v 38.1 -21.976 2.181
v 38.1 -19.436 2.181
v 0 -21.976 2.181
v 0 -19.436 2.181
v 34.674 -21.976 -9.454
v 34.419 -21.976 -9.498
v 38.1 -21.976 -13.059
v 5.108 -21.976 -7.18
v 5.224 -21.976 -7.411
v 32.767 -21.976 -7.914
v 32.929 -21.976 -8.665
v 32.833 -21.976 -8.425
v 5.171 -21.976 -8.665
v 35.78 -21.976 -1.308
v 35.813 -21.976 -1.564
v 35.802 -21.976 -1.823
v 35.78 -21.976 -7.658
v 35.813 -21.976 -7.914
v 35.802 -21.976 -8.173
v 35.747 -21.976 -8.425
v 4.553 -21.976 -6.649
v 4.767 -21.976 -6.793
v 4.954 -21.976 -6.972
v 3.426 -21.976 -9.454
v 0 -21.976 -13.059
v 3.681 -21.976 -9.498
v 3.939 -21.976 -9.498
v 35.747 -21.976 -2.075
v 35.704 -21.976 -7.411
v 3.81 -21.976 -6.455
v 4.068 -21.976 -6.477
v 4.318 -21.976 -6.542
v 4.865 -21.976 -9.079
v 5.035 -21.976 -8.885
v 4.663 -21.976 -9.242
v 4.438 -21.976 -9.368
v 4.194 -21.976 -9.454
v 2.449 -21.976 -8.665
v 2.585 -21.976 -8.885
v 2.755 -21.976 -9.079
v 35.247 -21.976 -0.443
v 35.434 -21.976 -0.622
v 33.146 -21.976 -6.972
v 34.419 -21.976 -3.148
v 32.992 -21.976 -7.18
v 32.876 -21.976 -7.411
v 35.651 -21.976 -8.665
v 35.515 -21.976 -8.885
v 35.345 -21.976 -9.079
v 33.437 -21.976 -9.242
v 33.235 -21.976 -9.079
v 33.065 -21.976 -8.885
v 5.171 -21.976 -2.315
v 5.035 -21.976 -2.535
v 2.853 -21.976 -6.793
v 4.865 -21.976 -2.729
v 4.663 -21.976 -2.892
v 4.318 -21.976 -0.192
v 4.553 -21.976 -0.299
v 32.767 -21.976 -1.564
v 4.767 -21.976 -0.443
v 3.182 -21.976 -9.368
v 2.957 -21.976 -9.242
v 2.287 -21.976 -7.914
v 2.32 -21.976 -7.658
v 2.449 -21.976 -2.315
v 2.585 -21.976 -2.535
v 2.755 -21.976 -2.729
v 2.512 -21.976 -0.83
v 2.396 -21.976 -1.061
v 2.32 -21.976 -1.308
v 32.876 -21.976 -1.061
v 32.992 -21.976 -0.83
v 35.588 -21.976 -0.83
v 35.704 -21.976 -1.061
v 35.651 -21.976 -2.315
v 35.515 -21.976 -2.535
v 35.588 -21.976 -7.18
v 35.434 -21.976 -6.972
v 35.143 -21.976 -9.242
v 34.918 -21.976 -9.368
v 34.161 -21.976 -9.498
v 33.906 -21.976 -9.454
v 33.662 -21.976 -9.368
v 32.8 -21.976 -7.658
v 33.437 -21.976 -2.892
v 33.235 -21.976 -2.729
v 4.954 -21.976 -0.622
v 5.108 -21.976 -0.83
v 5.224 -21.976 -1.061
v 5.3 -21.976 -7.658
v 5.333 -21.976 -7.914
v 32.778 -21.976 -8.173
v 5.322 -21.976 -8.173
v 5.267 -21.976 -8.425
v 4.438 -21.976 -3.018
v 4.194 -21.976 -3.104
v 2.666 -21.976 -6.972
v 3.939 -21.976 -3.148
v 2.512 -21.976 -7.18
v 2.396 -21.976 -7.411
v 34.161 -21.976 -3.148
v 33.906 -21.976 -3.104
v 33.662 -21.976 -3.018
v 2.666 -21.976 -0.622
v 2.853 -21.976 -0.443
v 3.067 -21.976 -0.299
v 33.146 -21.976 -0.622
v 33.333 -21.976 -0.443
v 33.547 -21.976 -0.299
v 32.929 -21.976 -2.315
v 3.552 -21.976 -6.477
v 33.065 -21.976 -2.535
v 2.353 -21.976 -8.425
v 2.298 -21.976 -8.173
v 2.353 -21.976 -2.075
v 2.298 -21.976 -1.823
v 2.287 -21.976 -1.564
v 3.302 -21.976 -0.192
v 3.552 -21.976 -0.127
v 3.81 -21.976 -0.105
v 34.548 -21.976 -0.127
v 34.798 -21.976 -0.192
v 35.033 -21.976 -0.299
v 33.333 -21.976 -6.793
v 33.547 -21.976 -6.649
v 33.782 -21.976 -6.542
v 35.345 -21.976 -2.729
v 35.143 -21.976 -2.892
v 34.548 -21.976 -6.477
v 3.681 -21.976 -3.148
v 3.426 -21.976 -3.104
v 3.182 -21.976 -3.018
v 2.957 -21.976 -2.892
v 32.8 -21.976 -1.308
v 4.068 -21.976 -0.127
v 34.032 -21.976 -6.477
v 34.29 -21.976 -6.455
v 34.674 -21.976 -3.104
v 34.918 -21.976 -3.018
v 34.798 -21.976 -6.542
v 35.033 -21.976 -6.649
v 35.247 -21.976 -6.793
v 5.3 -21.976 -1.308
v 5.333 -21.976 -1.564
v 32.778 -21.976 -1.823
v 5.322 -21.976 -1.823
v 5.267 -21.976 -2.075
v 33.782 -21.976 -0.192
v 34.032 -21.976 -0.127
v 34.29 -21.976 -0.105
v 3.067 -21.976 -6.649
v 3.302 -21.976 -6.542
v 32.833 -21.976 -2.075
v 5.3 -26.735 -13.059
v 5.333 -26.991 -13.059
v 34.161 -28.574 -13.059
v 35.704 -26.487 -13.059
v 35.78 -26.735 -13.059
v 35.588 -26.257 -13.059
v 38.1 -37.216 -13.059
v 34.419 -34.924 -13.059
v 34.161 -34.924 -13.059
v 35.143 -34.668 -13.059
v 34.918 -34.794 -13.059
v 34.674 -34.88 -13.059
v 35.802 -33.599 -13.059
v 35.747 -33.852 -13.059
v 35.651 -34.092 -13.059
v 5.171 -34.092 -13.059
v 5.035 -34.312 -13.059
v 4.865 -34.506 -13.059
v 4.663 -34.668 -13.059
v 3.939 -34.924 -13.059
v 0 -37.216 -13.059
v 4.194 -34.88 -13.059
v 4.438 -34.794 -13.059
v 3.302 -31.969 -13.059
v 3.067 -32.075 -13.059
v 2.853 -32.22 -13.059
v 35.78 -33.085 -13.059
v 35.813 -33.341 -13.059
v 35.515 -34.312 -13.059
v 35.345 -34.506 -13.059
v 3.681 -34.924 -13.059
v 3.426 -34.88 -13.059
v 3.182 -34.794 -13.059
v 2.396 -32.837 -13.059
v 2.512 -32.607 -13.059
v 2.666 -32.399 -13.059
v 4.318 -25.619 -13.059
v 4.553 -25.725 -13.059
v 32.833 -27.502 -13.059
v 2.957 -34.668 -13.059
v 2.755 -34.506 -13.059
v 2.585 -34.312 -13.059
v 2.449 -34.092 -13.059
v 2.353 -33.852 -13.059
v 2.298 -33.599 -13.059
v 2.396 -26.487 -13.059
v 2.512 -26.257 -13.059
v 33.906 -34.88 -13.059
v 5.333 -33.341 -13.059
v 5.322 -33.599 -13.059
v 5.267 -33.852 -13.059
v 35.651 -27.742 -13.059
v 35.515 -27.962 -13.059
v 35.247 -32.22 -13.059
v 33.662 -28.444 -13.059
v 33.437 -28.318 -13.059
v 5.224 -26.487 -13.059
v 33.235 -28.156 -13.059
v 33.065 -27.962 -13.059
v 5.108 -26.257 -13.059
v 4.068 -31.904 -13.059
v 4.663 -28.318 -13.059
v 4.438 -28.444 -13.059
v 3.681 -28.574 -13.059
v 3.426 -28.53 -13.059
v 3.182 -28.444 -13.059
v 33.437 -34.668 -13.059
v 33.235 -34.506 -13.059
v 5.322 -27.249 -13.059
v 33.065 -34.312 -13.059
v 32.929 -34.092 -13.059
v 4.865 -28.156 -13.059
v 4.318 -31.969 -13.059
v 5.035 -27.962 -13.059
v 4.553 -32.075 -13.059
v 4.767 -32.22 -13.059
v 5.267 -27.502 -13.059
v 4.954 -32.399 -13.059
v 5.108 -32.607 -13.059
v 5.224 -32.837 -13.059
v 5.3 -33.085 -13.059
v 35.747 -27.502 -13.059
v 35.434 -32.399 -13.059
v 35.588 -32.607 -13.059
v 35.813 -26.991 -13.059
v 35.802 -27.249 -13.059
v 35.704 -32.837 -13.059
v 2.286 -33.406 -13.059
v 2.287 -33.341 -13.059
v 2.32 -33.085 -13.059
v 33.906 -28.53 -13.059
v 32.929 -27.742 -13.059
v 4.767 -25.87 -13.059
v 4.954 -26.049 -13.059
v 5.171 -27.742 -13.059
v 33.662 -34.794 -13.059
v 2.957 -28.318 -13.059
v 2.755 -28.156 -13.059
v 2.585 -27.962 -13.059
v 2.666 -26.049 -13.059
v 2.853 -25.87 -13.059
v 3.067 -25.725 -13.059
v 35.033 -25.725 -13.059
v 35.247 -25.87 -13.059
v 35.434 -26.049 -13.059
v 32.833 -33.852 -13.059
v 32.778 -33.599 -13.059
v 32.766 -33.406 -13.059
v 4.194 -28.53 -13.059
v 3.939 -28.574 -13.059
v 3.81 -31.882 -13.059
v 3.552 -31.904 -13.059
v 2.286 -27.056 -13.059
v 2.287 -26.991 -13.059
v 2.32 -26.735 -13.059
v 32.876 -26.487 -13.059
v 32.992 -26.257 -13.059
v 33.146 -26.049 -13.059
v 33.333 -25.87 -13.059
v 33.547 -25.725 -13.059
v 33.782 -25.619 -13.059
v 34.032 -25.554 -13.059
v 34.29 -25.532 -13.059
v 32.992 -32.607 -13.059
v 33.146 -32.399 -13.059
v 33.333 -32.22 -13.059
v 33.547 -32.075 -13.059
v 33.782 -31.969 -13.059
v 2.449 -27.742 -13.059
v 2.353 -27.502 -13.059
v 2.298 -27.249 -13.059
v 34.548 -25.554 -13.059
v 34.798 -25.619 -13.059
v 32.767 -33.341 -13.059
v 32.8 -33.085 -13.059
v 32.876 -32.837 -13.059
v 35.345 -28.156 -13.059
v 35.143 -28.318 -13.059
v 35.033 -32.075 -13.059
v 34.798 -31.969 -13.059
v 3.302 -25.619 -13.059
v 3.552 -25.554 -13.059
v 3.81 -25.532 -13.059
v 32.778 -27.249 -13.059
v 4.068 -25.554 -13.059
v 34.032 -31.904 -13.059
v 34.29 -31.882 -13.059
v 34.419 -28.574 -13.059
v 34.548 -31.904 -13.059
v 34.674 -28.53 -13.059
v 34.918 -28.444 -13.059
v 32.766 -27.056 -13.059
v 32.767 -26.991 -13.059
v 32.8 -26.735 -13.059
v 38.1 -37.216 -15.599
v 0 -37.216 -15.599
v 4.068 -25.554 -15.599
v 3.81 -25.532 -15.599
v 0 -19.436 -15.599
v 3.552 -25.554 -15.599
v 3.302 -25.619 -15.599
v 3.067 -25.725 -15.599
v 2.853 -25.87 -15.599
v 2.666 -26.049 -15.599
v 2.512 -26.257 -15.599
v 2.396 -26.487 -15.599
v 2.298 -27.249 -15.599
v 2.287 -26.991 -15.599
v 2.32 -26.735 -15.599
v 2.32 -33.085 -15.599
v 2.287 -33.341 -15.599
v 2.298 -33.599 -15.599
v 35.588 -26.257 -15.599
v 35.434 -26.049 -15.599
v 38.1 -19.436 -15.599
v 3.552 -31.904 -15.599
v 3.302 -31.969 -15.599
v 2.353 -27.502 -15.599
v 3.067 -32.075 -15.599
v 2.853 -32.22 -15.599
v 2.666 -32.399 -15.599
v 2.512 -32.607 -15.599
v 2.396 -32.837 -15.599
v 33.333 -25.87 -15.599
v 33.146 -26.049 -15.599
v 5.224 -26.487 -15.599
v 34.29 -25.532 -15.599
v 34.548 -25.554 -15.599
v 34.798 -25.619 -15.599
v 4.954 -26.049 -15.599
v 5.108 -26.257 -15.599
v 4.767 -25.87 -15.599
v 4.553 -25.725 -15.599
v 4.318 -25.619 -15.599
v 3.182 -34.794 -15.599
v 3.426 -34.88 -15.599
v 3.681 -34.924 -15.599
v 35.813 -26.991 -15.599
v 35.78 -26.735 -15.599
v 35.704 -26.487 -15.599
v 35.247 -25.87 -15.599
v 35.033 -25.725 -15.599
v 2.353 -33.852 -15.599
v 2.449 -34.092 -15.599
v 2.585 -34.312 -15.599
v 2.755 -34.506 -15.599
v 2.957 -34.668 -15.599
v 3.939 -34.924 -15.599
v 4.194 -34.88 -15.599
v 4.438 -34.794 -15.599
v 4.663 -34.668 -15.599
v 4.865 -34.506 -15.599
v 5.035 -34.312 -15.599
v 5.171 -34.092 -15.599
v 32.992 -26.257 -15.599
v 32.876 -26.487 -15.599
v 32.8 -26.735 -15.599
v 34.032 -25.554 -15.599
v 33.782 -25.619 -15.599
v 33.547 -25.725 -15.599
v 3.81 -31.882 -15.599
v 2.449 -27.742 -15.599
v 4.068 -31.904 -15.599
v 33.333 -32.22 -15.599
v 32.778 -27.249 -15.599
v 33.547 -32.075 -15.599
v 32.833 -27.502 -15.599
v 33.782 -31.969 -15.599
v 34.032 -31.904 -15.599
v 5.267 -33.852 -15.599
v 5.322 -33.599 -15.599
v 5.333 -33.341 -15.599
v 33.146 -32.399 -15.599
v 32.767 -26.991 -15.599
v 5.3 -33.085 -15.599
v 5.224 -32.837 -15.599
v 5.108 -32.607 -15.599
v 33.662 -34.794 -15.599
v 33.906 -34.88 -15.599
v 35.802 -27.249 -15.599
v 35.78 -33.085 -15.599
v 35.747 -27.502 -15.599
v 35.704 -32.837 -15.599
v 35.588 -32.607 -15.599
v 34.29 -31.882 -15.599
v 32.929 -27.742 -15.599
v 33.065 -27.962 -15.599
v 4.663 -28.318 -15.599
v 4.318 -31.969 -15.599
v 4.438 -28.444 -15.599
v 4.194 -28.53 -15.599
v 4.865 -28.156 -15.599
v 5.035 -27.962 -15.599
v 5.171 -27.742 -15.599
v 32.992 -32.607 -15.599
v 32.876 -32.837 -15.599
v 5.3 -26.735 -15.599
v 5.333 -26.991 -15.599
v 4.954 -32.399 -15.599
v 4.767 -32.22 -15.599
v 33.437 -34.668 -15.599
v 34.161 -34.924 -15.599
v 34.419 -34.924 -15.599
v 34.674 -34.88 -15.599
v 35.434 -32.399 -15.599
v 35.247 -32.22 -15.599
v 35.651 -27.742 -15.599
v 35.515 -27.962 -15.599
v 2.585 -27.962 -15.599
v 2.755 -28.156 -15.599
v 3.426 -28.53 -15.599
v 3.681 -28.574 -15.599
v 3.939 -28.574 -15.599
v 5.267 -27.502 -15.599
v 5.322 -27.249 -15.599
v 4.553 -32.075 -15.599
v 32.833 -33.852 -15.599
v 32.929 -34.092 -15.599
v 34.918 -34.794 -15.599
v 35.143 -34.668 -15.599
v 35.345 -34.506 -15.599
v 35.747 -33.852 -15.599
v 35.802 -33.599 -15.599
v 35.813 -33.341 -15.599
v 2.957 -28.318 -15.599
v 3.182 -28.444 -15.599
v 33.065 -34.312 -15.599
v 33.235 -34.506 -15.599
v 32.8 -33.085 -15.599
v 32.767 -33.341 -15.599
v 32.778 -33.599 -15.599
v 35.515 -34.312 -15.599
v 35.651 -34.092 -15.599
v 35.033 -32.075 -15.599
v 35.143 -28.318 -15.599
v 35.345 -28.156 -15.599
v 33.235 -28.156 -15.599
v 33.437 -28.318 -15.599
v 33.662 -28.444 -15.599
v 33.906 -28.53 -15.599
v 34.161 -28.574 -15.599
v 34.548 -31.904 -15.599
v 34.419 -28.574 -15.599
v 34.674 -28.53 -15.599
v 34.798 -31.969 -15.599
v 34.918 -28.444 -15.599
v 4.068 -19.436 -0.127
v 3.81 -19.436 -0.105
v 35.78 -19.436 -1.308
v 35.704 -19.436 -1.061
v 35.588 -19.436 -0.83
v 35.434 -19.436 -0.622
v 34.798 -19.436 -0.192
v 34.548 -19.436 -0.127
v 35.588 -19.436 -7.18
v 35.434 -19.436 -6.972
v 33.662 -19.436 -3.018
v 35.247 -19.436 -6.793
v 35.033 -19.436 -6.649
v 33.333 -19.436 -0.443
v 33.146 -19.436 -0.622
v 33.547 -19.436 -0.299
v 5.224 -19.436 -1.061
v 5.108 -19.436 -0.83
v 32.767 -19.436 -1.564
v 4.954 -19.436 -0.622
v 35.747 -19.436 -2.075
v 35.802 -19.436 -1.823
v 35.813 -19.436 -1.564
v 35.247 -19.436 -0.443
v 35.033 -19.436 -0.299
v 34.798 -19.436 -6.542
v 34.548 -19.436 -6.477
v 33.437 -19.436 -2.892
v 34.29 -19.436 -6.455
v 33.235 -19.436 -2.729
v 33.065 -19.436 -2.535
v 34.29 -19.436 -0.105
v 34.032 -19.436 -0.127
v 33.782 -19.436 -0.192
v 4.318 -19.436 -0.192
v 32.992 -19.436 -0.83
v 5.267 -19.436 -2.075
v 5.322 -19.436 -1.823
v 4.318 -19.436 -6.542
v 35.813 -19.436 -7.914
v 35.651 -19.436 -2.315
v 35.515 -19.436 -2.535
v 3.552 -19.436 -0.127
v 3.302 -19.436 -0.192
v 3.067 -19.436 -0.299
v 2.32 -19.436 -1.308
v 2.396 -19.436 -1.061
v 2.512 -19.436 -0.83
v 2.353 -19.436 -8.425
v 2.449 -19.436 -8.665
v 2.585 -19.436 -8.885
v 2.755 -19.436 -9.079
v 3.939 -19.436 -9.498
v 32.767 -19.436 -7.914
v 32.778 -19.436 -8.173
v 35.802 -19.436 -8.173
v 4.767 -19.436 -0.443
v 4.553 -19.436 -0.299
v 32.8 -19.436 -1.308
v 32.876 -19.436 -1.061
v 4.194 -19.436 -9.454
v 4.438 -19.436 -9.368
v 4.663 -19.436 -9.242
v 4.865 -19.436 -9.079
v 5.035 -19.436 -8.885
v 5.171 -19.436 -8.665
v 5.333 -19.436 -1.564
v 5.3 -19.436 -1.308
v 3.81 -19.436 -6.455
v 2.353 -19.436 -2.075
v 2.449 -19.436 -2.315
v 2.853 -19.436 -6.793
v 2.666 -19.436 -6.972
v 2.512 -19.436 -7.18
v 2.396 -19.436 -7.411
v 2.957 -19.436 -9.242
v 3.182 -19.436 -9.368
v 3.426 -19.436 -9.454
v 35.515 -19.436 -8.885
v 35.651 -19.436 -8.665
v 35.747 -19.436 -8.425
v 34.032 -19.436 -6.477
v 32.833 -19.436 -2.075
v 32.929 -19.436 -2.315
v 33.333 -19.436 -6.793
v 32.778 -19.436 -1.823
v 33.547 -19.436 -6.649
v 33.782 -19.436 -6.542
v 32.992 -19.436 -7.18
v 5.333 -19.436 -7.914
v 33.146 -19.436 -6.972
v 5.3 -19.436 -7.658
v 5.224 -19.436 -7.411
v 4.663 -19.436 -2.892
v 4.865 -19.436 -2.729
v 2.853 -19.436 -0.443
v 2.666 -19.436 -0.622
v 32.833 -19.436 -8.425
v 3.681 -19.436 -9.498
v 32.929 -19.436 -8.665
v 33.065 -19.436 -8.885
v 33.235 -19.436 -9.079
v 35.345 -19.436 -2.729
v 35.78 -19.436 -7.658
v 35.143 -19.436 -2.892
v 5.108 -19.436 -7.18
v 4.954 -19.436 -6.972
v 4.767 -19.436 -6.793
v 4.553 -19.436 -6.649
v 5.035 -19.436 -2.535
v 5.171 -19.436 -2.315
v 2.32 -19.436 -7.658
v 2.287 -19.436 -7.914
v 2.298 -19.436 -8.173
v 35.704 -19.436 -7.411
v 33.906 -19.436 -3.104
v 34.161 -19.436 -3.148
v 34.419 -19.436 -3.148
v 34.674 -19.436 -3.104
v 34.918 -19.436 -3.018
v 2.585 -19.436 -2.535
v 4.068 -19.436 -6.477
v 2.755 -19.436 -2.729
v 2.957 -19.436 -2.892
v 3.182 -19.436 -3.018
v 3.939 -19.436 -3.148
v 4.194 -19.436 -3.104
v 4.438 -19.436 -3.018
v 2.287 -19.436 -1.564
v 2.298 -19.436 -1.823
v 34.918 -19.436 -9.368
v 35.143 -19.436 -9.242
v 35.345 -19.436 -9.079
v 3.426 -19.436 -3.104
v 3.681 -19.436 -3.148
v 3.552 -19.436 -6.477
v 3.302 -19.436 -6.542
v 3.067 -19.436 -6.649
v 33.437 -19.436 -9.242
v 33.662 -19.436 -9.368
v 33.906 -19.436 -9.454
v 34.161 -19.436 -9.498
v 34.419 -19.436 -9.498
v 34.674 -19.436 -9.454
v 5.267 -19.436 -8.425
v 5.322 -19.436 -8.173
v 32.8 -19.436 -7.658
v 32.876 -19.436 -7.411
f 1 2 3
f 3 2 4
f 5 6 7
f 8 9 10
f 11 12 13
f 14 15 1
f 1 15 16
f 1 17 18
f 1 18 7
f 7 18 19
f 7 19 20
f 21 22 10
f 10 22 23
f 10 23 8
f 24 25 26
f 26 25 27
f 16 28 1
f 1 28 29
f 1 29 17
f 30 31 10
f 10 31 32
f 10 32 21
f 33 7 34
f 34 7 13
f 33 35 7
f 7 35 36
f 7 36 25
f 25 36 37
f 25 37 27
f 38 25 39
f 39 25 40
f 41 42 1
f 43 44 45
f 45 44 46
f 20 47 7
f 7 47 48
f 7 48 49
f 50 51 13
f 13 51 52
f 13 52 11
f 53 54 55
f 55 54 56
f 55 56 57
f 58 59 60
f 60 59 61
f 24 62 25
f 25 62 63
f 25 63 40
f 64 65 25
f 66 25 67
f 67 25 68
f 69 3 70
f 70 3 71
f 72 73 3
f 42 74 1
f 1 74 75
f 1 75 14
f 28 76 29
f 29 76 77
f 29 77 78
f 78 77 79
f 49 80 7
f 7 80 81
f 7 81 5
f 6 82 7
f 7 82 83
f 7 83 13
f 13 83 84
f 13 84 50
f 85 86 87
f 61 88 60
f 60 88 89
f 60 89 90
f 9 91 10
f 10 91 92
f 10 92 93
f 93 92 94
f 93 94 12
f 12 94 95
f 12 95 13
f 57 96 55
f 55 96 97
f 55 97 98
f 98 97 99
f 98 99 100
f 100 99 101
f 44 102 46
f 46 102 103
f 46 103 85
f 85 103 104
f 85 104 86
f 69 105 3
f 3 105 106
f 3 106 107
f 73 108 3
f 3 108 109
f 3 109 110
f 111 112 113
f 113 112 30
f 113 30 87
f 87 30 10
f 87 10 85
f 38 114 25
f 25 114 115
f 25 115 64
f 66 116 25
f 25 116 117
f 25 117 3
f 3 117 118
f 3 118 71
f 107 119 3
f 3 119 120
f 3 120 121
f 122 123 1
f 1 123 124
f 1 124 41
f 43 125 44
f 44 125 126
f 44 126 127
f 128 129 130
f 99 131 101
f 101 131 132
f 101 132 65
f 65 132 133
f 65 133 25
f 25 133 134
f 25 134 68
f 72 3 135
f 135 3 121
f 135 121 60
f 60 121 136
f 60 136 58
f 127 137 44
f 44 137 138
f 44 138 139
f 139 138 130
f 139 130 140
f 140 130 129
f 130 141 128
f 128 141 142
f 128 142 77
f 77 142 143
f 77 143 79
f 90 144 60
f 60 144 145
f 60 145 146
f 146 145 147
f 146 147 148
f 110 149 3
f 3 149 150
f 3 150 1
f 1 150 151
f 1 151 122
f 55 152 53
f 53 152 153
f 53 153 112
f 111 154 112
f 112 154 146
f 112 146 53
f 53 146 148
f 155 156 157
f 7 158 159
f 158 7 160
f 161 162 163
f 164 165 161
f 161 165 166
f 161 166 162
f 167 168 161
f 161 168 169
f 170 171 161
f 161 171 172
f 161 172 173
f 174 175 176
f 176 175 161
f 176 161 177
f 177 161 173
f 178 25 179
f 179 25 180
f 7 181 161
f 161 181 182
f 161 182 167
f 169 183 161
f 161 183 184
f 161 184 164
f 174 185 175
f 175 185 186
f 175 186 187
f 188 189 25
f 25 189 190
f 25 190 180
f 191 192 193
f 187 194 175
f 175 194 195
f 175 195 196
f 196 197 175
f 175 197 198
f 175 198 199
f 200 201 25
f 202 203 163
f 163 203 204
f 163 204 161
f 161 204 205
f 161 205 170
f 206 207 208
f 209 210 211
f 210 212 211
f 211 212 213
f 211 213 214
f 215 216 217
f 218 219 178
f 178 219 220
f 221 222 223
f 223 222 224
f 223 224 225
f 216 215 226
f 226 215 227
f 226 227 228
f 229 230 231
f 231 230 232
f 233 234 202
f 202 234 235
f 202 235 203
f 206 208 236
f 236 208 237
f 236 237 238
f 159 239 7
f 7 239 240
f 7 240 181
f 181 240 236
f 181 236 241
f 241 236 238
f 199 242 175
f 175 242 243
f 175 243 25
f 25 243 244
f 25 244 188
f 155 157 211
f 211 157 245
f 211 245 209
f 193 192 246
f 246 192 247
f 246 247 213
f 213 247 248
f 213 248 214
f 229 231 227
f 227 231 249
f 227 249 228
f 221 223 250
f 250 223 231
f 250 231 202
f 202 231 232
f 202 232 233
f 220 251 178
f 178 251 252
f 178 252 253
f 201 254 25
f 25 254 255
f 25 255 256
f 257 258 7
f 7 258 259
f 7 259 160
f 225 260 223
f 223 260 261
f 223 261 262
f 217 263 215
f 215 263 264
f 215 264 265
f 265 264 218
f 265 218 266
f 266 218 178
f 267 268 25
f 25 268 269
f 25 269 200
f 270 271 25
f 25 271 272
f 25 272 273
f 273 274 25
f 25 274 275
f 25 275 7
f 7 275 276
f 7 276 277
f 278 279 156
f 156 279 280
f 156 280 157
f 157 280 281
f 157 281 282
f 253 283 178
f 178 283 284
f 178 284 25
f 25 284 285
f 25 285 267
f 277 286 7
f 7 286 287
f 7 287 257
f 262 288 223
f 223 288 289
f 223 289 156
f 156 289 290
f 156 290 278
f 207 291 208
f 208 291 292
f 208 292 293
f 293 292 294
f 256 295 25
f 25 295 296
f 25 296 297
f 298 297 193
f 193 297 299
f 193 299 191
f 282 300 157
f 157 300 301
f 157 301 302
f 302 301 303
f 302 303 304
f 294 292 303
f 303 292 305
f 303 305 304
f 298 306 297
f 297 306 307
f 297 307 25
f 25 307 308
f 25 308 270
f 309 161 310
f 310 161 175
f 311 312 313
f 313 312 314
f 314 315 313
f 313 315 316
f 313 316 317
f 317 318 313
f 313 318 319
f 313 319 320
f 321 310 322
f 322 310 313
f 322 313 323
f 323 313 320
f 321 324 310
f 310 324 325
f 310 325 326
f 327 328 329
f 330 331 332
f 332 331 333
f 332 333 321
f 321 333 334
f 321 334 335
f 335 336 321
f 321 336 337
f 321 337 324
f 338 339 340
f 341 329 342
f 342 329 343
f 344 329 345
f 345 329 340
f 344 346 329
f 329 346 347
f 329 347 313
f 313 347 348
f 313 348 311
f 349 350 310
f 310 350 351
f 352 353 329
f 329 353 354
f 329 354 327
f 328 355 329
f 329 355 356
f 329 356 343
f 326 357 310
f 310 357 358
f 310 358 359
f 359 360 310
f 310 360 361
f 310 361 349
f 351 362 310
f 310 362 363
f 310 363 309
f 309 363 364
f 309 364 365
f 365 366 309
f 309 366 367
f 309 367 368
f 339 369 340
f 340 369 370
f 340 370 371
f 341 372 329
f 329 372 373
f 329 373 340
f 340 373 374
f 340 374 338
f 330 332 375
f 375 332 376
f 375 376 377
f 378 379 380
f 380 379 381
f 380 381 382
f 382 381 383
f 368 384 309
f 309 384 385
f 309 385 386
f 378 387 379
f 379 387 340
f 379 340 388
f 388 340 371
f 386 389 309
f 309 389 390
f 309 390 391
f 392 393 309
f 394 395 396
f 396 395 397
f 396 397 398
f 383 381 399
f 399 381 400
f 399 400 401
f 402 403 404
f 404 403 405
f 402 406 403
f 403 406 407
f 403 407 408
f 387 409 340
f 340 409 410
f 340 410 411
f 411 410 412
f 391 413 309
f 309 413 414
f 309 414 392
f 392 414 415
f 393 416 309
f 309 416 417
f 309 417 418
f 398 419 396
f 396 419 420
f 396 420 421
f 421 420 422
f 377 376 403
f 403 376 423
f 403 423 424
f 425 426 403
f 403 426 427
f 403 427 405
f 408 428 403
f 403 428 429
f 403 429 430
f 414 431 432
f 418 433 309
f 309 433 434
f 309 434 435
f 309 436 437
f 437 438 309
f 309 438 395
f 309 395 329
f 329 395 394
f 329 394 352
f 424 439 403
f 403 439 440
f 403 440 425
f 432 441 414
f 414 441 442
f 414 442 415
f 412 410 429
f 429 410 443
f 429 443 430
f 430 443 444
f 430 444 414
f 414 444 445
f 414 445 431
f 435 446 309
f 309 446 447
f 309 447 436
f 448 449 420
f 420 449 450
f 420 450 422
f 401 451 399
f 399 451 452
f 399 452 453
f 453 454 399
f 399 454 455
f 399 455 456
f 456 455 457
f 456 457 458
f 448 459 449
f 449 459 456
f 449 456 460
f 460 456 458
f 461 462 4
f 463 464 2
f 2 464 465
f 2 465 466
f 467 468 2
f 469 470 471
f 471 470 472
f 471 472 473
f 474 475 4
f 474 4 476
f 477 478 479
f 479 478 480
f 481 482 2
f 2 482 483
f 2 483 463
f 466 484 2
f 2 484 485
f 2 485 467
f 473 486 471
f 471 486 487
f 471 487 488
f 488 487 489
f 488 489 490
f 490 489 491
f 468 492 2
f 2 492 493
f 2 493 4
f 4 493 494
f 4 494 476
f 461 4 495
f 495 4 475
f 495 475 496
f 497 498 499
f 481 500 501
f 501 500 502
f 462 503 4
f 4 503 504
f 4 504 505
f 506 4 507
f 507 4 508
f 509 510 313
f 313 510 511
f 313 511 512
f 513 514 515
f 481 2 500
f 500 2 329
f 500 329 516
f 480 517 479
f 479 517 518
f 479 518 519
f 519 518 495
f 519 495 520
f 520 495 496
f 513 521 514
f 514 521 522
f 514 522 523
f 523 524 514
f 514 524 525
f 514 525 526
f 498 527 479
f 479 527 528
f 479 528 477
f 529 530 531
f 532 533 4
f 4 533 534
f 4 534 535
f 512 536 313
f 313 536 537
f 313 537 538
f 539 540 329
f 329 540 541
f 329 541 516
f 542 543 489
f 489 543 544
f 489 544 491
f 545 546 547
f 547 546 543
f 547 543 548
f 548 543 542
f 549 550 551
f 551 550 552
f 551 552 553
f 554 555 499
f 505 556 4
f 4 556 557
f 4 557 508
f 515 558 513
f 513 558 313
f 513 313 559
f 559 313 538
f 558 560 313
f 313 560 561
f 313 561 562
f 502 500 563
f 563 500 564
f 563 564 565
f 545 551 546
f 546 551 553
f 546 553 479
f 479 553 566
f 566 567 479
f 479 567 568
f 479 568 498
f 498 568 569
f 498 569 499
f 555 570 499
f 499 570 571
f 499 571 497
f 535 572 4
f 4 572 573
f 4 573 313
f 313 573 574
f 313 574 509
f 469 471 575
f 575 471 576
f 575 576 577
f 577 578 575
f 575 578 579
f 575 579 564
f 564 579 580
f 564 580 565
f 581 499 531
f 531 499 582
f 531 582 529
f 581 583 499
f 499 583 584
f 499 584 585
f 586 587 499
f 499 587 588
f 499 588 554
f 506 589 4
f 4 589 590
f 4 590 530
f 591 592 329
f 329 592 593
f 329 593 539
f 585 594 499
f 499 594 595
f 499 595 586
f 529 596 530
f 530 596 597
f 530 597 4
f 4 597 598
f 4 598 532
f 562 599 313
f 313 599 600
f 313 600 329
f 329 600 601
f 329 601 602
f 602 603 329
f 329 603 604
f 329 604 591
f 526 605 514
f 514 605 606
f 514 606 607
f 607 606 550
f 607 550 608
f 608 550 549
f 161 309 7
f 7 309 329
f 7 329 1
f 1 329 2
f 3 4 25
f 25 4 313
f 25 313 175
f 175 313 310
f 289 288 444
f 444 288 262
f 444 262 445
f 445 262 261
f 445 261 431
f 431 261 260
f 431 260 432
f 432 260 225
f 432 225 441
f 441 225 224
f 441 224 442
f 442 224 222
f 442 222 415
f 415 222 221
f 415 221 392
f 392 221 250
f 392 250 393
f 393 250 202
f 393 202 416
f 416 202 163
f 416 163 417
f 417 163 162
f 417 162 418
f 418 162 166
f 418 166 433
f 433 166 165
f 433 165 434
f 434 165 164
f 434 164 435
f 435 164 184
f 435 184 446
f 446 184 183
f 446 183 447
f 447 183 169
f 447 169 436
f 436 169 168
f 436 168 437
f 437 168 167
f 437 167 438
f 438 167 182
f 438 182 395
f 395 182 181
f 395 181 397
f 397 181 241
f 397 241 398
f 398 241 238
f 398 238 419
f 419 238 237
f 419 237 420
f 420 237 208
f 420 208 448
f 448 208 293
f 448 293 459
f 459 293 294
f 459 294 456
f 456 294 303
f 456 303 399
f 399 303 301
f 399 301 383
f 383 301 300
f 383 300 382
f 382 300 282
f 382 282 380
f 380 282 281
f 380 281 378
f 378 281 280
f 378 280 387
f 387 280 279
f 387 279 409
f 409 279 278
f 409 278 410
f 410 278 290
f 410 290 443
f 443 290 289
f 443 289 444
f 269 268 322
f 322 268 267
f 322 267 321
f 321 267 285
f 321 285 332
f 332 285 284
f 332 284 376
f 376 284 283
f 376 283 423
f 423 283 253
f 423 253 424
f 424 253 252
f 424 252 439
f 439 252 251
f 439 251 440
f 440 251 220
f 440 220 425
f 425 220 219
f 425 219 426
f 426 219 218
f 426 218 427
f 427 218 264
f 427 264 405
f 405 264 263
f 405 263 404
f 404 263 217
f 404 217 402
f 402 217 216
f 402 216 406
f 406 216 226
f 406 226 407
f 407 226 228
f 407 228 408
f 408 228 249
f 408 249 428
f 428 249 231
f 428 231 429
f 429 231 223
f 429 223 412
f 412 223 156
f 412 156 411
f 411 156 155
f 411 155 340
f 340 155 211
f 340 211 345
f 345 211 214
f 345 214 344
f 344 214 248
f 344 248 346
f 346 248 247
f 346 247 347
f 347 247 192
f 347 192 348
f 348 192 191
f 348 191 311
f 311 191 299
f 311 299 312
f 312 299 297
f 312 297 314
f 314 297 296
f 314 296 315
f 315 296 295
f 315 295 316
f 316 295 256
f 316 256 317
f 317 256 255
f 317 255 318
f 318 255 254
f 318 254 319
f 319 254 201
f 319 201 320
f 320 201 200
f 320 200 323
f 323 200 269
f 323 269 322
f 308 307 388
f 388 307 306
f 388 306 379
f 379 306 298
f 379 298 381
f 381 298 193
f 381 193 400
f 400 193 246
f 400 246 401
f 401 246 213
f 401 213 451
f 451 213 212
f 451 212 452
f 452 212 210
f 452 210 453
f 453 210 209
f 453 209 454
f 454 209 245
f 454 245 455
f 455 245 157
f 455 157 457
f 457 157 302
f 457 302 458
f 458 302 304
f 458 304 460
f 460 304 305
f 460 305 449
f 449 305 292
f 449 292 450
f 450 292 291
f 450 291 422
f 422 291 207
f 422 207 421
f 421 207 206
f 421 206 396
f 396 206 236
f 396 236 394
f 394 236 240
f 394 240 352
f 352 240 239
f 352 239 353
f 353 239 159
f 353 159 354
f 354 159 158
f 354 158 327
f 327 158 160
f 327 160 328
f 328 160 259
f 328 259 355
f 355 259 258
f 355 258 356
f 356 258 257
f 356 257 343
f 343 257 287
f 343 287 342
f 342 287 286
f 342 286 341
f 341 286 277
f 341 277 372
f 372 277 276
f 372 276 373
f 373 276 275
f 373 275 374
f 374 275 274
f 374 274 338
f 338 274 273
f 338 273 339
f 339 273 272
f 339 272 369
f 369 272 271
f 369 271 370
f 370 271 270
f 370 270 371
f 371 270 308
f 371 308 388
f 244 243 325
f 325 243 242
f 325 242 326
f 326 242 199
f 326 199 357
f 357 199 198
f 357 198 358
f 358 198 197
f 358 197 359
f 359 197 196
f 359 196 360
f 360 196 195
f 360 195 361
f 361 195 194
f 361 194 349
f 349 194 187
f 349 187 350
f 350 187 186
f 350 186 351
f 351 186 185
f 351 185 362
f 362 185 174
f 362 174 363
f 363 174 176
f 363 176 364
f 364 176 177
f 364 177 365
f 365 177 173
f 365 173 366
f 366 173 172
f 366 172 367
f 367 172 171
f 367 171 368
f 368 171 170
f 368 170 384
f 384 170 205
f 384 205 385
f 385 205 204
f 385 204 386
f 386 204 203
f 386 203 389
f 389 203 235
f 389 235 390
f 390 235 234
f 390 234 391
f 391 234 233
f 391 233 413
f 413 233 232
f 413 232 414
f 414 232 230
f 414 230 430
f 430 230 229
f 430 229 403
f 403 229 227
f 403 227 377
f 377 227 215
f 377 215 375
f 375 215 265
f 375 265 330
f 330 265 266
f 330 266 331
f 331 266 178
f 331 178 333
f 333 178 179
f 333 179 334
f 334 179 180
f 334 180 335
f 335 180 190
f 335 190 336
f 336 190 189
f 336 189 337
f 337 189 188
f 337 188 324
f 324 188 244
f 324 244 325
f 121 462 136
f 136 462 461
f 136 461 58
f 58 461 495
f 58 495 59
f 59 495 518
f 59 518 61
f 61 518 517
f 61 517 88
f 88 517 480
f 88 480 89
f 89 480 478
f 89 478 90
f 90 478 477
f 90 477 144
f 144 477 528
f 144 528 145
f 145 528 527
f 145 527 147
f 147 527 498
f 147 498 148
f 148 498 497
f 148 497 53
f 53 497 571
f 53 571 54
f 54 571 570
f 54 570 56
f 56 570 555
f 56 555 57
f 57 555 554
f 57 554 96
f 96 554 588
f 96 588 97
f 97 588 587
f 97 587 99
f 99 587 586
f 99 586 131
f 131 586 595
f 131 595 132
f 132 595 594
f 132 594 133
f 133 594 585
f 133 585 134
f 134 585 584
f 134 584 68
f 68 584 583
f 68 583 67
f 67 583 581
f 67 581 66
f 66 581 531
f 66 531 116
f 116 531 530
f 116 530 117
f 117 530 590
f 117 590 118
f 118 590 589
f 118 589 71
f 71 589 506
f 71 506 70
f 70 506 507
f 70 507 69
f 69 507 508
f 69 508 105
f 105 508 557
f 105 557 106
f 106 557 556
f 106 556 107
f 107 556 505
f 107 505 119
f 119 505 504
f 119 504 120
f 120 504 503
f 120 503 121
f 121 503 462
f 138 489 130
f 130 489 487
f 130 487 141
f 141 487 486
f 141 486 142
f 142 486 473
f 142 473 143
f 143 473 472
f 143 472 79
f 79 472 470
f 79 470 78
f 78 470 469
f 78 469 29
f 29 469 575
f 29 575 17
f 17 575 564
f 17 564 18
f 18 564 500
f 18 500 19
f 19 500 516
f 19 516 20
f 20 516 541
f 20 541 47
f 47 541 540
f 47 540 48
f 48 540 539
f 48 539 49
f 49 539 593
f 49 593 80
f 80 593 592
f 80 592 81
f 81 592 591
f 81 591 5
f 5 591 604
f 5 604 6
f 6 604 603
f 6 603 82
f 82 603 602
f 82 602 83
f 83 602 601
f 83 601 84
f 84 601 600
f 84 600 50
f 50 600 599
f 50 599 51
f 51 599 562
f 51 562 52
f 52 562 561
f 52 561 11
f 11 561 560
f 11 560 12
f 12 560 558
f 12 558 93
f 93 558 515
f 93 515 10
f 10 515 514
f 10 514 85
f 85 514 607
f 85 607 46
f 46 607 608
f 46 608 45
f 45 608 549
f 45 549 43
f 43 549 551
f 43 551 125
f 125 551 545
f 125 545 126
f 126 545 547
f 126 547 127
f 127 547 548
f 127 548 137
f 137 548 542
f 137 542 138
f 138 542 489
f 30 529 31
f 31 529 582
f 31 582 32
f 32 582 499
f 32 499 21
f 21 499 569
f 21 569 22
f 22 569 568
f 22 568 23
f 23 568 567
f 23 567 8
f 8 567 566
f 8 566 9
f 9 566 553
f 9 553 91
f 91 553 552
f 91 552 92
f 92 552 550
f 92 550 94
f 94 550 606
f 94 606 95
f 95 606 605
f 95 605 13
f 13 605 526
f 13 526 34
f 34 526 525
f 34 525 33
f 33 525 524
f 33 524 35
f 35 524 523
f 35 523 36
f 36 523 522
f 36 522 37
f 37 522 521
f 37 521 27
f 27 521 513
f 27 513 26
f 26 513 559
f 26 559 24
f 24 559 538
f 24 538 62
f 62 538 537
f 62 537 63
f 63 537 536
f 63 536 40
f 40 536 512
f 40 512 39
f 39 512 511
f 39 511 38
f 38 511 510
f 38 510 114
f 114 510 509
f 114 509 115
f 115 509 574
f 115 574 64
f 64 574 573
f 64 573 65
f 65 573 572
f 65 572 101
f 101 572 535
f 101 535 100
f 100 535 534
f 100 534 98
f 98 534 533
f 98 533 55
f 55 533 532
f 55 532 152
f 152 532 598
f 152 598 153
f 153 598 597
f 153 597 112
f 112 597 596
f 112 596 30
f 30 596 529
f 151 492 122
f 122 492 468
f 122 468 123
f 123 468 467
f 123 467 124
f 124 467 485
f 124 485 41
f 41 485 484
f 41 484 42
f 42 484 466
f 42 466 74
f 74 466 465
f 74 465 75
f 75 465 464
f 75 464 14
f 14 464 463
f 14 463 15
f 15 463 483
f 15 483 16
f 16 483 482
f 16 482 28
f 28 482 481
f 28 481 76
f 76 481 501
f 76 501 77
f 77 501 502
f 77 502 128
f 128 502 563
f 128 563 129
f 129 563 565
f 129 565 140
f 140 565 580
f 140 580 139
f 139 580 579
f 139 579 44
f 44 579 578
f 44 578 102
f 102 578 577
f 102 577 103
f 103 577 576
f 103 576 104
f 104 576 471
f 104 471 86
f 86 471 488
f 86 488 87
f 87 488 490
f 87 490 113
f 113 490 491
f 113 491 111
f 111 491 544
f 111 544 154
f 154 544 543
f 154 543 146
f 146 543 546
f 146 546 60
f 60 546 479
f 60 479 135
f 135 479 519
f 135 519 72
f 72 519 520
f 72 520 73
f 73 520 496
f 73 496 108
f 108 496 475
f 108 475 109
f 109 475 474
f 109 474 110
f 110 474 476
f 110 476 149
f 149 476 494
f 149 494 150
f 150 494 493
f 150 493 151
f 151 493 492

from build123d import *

# Parameters (mm, degrees)
BOSS_EXTRUDE1_DEPTH = 38.1
SKETCH2_R           = 1.524
CUT_EXTRUDE1_DEPTH  = 57.149295064
SKETCH3_R           = 1.524
CUT_EXTRUDE2_DEPTH  = 45.844943949


with BuildPart() as part:
    # Sketch1 → Boss-Extrude1 (new body)
    with BuildSketch(Plane(origin=(0, 0, 0), x_dir=(0, 0, -1), z_dir=(1, 0, 0))):
        Polygon((-2.180942408, -19.43565445), (15.599057592, -19.43565445), (15.599057592, -37.21565445), (13.059057592, -37.21565445), (13.059057592, -21.97565445), (-2.180942408, -21.97565445), align=None)
    extrude(amount=BOSS_EXTRUDE1_DEPTH)

    # Sketch2 → Cut-Extrude1 (cut, through all)
    with BuildSketch(Plane(origin=(0, 0, -15.599057592), x_dir=(-1, 0, 0), z_dir=(0, 0, -1))):
        with Locations(Location((-34.29, -33.40565445, 0), (0, 0, 90))):
            Circle(SKETCH2_R)
        with Locations(Location((-3.81, -33.40565445, 0), (0, 0, 90))):
            Circle(SKETCH2_R)
        with Locations(Location((-3.81, -27.05565445, 0), (0, 0, 90))):
            Circle(SKETCH2_R)
        with Locations(Location((-34.29, -27.05565445, 0), (0, 0, 90))):
            Circle(SKETCH2_R)
    extrude(amount=-CUT_EXTRUDE1_DEPTH, mode=Mode.SUBTRACT)

    # Sketch3 → Cut-Extrude2 (cut, through all)
    with BuildSketch(Plane(origin=(0, -19.43565445, 0), x_dir=(1, 0, 0), z_dir=(0, 1, 0))):
        with Locations(Location((3.81, 1.629057592, 0), (0, 0, 270))):
            Circle(SKETCH3_R)
        with Locations(Location((34.29, 1.629057592, 0), (0, 0, 270))):
            Circle(SKETCH3_R)
        with Locations(Location((3.81, 7.979057592, 0), (0, 0, 270))):
            Circle(SKETCH3_R)
        with Locations(Location((34.29, 7.979057592, 0), (0, 0, 270))):
            Circle(SKETCH3_R)
    extrude(amount=-CUT_EXTRUDE2_DEPTH, mode=Mode.SUBTRACT)


solid = part.part
